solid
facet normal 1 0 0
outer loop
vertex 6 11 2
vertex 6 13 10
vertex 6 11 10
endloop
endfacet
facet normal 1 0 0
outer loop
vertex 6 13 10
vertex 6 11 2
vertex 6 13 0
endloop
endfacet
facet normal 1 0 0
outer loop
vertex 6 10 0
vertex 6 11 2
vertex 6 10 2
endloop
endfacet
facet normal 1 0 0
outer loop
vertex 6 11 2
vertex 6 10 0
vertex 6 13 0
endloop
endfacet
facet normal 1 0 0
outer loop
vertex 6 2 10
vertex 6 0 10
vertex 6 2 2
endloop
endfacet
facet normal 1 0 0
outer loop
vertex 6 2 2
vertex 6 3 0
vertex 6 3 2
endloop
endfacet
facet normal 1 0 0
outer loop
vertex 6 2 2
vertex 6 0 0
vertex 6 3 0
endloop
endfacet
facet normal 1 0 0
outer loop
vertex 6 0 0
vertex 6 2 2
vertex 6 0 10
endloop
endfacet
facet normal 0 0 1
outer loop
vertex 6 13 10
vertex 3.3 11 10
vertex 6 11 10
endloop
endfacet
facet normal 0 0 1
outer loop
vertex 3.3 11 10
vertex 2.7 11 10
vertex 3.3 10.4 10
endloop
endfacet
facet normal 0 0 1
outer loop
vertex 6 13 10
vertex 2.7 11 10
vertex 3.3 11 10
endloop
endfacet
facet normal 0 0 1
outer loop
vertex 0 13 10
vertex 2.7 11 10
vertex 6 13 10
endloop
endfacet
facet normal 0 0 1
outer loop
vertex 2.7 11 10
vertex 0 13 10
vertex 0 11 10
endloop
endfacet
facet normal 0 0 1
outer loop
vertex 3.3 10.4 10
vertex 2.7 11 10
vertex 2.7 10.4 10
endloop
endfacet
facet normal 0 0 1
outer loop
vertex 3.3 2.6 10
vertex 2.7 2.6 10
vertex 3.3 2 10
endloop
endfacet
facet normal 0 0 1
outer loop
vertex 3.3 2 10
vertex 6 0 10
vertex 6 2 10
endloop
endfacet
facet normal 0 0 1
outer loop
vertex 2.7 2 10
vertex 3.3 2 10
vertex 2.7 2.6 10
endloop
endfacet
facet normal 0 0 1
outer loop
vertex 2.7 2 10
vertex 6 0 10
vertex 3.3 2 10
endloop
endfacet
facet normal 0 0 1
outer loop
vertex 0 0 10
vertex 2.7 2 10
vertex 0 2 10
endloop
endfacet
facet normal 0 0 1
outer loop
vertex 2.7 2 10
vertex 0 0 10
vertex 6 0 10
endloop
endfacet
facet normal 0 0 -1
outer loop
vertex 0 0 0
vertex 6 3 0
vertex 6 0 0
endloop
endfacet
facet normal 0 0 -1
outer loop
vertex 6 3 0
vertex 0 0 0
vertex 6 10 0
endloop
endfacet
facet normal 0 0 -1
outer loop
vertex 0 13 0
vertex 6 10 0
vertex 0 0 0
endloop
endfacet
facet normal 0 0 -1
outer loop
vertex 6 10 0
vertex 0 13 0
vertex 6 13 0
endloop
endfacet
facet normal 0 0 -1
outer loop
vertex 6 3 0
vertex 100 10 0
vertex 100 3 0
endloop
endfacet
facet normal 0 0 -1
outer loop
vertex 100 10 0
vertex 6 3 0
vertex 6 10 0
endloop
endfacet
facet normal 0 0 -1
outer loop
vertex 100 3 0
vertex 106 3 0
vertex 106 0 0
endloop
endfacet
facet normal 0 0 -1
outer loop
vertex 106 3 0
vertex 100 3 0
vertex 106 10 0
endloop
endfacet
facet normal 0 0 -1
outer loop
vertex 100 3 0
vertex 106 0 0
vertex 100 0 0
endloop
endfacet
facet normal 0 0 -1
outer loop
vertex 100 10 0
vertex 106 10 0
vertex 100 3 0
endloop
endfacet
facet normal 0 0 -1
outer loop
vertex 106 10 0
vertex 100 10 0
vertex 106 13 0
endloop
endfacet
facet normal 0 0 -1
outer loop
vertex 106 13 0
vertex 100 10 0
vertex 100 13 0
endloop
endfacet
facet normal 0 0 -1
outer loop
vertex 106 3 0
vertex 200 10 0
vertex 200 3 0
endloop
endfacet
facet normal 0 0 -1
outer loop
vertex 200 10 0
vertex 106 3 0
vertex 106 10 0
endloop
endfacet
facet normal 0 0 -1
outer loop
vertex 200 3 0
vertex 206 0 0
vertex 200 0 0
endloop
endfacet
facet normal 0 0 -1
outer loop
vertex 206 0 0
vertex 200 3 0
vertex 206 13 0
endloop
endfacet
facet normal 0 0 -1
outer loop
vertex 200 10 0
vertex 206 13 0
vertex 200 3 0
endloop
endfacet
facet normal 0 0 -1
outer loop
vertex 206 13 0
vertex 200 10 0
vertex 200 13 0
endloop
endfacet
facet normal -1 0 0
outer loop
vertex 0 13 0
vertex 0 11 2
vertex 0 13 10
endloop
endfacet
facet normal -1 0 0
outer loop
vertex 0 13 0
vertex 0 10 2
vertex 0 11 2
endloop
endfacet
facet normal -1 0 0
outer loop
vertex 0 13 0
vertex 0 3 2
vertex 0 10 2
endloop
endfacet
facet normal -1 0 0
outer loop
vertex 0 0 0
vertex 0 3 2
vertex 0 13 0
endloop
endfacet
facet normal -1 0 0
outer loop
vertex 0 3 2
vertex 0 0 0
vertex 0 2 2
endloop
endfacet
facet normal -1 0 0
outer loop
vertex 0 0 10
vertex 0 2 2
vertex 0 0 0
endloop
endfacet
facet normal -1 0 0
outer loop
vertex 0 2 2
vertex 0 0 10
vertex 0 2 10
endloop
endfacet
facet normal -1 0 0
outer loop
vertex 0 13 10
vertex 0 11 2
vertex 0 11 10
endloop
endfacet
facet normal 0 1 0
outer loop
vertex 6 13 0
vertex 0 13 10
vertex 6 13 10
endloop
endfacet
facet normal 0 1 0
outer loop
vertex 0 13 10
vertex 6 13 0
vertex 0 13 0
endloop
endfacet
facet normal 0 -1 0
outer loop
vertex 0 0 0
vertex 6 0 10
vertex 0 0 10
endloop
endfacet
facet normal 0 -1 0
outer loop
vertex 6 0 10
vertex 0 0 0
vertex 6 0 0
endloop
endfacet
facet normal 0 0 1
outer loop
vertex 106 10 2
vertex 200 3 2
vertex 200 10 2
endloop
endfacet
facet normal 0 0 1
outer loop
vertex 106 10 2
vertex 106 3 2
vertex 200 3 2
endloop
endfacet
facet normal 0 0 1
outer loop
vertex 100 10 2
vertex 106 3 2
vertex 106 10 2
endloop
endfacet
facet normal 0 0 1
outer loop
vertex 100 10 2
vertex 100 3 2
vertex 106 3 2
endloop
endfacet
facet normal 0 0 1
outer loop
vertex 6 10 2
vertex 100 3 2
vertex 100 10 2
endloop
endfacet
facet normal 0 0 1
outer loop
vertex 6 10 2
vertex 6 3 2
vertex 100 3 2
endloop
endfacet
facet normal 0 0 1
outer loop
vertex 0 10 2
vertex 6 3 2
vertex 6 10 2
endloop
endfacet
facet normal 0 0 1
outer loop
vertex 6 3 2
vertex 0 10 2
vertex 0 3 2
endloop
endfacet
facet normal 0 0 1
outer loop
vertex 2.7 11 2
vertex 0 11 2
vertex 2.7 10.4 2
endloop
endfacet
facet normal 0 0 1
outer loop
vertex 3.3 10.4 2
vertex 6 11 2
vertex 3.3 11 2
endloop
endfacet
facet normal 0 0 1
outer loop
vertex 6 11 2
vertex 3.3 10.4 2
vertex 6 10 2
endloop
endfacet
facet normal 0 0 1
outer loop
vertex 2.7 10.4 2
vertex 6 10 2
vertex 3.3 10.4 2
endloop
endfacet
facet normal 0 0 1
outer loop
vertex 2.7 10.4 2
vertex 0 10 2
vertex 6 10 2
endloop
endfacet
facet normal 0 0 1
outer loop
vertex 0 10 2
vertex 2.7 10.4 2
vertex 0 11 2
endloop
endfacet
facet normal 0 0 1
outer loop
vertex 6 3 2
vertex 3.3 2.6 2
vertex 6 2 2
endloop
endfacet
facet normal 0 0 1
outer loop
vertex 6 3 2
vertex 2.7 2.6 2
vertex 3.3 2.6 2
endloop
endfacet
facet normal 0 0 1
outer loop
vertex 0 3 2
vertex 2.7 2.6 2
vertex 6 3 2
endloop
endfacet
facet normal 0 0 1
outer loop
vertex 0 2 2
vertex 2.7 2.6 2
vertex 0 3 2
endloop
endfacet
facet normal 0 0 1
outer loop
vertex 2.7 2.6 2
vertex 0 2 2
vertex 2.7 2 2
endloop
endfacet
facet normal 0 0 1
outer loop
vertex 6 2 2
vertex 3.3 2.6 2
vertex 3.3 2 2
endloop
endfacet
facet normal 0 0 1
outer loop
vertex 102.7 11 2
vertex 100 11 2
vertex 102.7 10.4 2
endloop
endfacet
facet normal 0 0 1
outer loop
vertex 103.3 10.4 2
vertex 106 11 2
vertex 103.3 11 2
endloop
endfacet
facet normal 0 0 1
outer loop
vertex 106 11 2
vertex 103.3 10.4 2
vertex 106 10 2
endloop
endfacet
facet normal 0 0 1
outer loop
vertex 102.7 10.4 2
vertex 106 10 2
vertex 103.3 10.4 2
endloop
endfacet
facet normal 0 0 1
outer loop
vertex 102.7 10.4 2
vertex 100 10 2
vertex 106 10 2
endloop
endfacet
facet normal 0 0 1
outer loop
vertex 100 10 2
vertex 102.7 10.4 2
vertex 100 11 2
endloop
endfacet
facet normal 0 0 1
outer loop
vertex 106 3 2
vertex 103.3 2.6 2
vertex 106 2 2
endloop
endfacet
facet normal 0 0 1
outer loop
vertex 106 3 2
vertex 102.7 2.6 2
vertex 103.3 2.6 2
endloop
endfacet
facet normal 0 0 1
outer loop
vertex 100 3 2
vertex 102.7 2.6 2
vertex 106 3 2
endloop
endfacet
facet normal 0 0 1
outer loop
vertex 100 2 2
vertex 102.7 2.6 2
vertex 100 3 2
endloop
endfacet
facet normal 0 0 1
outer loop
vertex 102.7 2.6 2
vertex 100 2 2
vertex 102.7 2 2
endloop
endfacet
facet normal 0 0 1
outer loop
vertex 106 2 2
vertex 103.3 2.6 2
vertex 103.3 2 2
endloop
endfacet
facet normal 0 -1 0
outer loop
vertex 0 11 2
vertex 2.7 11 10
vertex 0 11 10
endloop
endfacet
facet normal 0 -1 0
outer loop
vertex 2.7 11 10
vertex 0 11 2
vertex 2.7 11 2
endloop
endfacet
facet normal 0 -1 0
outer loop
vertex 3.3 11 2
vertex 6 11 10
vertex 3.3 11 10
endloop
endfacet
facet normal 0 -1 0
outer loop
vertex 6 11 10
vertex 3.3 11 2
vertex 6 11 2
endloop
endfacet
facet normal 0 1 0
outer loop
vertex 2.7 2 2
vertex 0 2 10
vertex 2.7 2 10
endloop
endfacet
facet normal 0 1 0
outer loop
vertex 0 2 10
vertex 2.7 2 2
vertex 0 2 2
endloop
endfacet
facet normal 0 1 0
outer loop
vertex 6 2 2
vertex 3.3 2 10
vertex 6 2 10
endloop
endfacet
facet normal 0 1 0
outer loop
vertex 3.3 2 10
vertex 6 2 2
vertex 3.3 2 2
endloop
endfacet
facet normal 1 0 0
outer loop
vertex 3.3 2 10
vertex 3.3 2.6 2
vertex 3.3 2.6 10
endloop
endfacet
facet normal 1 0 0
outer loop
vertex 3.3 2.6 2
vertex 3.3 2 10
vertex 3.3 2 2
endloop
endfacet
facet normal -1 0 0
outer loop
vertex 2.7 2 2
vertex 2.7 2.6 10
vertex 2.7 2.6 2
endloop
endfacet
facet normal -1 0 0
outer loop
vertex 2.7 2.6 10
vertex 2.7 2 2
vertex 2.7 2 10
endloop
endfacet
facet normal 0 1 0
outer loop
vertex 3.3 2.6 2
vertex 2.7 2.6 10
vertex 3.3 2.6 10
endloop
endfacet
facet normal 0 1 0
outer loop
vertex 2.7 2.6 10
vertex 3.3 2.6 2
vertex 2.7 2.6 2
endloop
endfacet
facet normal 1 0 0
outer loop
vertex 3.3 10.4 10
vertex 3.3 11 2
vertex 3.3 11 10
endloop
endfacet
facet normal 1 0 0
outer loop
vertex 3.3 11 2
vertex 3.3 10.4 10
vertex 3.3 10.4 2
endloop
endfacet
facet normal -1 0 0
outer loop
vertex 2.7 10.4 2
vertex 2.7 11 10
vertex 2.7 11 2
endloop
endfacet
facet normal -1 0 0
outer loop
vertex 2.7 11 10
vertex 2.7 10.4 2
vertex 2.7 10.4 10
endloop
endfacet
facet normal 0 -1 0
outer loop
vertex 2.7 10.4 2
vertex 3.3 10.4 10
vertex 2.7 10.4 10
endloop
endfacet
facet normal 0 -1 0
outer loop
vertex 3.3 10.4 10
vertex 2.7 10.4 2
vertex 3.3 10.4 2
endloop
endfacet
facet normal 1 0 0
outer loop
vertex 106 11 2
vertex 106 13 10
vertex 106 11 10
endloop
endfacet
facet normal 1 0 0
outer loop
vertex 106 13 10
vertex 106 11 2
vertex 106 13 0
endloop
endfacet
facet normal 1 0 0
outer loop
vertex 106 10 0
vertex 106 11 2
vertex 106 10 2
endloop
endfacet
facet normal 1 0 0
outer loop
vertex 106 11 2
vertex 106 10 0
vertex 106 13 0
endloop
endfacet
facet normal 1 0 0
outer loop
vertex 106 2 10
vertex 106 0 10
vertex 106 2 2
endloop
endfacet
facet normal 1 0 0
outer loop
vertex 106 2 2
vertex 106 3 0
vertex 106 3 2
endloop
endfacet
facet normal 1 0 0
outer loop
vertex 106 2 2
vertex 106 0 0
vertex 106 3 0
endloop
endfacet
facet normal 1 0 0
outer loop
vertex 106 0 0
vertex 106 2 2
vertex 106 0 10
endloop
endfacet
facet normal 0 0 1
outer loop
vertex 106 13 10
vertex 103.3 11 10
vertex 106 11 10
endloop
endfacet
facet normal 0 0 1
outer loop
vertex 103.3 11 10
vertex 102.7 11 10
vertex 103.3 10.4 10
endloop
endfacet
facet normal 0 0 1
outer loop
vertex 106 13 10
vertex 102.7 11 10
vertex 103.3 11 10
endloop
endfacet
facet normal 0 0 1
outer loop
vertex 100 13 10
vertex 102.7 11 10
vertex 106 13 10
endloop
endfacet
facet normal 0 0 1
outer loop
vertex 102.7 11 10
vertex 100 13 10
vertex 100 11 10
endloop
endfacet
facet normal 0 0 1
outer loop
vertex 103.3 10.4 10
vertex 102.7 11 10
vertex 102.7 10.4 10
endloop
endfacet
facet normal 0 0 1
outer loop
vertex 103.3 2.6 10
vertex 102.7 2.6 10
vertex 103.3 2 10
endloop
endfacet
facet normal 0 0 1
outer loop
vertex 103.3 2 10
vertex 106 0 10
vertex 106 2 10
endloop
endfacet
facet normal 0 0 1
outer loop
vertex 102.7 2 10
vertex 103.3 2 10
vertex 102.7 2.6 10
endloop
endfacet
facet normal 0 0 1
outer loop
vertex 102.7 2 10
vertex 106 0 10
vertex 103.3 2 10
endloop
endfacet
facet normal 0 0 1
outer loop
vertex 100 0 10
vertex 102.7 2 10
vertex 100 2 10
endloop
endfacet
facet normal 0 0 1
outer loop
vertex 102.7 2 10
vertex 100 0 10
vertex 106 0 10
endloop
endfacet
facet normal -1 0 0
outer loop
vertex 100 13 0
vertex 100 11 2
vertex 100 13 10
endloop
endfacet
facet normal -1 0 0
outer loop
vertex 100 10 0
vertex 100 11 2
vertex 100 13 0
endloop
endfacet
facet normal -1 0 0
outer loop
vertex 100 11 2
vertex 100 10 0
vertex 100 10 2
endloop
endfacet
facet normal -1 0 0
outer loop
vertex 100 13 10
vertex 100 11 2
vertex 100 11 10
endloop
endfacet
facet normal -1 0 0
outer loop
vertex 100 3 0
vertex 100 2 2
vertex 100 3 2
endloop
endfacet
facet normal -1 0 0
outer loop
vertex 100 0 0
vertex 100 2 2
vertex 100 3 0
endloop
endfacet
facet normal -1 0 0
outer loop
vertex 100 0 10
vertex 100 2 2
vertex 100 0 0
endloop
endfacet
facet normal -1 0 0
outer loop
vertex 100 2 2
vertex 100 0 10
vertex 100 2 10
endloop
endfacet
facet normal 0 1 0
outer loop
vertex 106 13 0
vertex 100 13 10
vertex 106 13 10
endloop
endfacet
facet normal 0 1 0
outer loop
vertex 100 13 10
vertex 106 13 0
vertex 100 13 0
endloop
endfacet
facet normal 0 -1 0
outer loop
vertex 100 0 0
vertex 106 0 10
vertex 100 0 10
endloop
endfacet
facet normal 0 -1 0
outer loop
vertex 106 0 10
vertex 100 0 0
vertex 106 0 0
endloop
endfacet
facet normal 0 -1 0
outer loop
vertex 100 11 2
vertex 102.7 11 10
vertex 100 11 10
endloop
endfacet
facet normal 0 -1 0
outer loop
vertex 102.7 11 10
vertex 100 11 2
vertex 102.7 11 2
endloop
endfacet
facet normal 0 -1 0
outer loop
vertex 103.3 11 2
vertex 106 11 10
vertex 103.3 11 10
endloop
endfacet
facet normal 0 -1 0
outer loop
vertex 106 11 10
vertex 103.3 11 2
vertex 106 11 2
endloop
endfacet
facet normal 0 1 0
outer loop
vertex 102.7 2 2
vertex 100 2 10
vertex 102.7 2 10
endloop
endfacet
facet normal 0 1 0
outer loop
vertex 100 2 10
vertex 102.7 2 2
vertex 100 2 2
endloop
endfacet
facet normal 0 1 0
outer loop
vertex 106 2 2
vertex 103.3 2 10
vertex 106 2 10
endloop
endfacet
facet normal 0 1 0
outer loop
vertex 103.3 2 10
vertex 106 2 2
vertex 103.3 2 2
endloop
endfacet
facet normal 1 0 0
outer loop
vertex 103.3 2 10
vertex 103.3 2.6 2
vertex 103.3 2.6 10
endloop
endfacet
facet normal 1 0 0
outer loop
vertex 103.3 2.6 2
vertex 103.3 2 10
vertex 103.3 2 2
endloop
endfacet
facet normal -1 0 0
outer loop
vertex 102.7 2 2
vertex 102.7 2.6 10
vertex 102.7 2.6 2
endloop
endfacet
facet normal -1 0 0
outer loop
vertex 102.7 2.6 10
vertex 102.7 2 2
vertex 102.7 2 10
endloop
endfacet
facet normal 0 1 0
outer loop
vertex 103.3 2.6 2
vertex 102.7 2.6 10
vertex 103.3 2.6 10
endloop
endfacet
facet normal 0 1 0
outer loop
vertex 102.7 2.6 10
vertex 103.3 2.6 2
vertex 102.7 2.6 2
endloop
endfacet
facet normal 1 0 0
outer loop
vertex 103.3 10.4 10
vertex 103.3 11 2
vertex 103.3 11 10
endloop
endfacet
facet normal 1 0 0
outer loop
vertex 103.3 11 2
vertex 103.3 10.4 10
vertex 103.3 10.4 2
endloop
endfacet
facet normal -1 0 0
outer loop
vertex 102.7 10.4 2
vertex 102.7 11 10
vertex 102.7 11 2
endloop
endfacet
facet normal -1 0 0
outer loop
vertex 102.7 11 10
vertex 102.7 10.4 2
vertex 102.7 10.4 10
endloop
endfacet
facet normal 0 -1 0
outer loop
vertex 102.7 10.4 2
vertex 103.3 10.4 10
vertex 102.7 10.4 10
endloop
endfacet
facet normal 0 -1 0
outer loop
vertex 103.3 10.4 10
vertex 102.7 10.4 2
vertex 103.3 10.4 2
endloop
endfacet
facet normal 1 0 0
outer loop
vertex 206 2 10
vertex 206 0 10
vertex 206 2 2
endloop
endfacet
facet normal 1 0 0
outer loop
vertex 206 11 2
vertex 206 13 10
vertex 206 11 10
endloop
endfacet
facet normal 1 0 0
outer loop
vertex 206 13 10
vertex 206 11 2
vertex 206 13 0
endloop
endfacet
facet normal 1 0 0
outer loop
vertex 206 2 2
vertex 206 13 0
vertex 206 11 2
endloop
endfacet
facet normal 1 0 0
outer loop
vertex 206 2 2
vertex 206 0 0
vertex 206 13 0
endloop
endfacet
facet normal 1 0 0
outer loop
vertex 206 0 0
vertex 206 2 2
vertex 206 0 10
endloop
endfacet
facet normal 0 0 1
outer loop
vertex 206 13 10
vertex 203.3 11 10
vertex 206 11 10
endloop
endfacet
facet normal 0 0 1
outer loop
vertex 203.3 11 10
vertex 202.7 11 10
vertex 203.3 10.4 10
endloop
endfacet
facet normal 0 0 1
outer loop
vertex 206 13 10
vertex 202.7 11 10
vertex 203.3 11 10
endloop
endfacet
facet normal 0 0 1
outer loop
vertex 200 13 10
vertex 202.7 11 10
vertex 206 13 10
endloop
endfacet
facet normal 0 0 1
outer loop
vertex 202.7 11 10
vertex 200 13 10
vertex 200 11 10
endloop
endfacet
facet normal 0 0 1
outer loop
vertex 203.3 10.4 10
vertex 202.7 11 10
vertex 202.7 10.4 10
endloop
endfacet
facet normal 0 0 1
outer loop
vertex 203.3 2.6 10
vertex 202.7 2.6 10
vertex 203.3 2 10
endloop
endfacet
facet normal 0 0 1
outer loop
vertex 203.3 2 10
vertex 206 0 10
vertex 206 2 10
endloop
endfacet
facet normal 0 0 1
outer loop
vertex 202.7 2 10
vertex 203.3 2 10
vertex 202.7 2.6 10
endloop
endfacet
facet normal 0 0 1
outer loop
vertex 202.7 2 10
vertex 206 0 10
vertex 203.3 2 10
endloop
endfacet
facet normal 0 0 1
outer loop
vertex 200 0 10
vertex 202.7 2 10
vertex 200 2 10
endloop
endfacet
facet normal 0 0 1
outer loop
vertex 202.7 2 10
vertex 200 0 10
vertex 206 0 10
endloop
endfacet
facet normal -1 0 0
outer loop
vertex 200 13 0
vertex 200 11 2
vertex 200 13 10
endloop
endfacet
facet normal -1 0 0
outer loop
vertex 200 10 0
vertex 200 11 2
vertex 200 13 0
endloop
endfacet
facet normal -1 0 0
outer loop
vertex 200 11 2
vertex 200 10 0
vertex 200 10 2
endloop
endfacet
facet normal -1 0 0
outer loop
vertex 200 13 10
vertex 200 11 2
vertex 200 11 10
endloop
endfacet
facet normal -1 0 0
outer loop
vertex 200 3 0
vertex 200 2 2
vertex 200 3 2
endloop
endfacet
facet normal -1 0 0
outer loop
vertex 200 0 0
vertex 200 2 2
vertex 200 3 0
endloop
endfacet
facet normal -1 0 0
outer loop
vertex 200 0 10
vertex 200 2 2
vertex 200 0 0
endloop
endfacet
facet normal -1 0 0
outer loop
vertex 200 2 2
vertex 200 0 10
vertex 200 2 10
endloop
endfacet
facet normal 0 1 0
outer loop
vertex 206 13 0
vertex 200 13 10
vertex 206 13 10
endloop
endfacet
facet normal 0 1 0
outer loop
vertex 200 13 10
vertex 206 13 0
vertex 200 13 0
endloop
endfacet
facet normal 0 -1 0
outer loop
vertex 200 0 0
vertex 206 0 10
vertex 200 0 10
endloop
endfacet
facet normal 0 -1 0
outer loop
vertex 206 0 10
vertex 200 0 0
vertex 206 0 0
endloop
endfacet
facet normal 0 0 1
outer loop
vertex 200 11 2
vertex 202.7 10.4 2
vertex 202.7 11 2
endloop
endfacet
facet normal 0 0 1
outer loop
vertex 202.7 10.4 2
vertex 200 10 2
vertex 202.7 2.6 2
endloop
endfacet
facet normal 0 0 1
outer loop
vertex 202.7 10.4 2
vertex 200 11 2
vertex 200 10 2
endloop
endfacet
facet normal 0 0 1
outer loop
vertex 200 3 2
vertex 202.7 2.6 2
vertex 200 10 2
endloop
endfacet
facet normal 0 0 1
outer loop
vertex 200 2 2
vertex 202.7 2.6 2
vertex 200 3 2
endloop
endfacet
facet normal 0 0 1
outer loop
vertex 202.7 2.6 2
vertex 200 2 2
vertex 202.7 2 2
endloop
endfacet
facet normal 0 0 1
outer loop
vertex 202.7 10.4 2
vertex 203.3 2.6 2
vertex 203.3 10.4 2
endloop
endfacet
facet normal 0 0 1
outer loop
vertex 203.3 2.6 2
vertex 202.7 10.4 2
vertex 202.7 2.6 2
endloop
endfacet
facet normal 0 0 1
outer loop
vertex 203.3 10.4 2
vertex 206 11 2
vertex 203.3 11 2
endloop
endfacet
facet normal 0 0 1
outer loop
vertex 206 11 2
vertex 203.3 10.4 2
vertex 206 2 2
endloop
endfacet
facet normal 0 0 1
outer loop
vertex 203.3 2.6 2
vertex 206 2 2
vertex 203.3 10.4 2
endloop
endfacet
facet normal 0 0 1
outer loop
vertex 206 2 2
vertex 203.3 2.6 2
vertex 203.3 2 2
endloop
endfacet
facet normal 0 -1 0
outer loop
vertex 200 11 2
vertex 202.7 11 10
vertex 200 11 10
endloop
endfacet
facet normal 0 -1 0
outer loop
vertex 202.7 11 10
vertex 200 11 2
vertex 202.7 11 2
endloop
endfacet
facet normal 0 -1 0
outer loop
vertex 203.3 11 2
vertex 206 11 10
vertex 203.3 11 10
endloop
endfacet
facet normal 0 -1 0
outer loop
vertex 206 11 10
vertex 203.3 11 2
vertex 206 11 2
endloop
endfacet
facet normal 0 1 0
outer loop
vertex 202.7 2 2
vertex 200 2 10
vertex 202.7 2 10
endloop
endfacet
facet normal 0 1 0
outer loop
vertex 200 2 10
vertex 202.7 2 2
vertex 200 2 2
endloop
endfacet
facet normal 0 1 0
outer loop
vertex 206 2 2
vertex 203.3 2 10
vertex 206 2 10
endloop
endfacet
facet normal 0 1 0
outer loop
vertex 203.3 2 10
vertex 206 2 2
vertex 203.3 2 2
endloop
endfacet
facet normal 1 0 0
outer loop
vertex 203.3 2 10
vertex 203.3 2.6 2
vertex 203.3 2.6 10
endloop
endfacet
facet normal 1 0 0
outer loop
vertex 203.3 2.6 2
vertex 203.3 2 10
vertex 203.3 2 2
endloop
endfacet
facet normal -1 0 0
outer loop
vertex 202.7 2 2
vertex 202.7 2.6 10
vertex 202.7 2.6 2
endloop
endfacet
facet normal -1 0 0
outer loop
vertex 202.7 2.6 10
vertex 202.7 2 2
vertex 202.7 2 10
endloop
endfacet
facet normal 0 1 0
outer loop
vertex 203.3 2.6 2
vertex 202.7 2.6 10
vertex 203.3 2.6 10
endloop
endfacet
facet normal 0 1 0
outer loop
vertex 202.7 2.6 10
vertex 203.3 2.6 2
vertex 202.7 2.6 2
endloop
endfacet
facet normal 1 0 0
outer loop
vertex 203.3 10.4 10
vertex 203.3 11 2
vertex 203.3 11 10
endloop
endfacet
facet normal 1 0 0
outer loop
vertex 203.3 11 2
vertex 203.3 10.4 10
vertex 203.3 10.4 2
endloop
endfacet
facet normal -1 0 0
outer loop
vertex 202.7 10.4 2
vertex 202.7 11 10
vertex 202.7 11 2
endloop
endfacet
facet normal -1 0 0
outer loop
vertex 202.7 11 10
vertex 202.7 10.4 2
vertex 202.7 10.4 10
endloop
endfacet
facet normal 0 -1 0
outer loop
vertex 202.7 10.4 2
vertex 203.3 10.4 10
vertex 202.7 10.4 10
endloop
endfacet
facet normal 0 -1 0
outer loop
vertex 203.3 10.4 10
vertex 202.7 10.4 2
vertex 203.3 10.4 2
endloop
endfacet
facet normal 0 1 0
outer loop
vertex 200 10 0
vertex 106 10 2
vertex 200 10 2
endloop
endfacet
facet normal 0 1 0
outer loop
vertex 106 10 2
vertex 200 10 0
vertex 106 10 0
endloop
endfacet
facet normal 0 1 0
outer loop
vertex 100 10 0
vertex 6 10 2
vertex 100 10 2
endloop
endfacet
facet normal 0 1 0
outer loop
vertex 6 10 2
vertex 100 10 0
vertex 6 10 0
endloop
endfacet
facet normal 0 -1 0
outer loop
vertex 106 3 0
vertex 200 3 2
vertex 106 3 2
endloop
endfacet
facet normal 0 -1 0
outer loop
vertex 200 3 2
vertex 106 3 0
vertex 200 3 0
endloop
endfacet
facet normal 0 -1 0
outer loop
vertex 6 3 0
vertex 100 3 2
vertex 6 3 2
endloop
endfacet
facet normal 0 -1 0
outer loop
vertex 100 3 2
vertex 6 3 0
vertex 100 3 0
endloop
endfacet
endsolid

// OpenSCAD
d=9;

module clamp() {
    difference() {
        cube([6, 9+4, 10]);
        translate([-1, 2, 2])
            cube([8, 9, 10]);
    }
    translate([2.7, 0, 0])
        cube([0.6, 2.6, 10]);
    translate([2.7, 10.4, 0])
        cube([0.6, 2.6, 10]);
}

translate([0, 3, 0])
    cube([200, 7, 2]);
clamp();
translate([100, 0, 0])
    clamp();
translate([200, 0, 0])
    clamp();
